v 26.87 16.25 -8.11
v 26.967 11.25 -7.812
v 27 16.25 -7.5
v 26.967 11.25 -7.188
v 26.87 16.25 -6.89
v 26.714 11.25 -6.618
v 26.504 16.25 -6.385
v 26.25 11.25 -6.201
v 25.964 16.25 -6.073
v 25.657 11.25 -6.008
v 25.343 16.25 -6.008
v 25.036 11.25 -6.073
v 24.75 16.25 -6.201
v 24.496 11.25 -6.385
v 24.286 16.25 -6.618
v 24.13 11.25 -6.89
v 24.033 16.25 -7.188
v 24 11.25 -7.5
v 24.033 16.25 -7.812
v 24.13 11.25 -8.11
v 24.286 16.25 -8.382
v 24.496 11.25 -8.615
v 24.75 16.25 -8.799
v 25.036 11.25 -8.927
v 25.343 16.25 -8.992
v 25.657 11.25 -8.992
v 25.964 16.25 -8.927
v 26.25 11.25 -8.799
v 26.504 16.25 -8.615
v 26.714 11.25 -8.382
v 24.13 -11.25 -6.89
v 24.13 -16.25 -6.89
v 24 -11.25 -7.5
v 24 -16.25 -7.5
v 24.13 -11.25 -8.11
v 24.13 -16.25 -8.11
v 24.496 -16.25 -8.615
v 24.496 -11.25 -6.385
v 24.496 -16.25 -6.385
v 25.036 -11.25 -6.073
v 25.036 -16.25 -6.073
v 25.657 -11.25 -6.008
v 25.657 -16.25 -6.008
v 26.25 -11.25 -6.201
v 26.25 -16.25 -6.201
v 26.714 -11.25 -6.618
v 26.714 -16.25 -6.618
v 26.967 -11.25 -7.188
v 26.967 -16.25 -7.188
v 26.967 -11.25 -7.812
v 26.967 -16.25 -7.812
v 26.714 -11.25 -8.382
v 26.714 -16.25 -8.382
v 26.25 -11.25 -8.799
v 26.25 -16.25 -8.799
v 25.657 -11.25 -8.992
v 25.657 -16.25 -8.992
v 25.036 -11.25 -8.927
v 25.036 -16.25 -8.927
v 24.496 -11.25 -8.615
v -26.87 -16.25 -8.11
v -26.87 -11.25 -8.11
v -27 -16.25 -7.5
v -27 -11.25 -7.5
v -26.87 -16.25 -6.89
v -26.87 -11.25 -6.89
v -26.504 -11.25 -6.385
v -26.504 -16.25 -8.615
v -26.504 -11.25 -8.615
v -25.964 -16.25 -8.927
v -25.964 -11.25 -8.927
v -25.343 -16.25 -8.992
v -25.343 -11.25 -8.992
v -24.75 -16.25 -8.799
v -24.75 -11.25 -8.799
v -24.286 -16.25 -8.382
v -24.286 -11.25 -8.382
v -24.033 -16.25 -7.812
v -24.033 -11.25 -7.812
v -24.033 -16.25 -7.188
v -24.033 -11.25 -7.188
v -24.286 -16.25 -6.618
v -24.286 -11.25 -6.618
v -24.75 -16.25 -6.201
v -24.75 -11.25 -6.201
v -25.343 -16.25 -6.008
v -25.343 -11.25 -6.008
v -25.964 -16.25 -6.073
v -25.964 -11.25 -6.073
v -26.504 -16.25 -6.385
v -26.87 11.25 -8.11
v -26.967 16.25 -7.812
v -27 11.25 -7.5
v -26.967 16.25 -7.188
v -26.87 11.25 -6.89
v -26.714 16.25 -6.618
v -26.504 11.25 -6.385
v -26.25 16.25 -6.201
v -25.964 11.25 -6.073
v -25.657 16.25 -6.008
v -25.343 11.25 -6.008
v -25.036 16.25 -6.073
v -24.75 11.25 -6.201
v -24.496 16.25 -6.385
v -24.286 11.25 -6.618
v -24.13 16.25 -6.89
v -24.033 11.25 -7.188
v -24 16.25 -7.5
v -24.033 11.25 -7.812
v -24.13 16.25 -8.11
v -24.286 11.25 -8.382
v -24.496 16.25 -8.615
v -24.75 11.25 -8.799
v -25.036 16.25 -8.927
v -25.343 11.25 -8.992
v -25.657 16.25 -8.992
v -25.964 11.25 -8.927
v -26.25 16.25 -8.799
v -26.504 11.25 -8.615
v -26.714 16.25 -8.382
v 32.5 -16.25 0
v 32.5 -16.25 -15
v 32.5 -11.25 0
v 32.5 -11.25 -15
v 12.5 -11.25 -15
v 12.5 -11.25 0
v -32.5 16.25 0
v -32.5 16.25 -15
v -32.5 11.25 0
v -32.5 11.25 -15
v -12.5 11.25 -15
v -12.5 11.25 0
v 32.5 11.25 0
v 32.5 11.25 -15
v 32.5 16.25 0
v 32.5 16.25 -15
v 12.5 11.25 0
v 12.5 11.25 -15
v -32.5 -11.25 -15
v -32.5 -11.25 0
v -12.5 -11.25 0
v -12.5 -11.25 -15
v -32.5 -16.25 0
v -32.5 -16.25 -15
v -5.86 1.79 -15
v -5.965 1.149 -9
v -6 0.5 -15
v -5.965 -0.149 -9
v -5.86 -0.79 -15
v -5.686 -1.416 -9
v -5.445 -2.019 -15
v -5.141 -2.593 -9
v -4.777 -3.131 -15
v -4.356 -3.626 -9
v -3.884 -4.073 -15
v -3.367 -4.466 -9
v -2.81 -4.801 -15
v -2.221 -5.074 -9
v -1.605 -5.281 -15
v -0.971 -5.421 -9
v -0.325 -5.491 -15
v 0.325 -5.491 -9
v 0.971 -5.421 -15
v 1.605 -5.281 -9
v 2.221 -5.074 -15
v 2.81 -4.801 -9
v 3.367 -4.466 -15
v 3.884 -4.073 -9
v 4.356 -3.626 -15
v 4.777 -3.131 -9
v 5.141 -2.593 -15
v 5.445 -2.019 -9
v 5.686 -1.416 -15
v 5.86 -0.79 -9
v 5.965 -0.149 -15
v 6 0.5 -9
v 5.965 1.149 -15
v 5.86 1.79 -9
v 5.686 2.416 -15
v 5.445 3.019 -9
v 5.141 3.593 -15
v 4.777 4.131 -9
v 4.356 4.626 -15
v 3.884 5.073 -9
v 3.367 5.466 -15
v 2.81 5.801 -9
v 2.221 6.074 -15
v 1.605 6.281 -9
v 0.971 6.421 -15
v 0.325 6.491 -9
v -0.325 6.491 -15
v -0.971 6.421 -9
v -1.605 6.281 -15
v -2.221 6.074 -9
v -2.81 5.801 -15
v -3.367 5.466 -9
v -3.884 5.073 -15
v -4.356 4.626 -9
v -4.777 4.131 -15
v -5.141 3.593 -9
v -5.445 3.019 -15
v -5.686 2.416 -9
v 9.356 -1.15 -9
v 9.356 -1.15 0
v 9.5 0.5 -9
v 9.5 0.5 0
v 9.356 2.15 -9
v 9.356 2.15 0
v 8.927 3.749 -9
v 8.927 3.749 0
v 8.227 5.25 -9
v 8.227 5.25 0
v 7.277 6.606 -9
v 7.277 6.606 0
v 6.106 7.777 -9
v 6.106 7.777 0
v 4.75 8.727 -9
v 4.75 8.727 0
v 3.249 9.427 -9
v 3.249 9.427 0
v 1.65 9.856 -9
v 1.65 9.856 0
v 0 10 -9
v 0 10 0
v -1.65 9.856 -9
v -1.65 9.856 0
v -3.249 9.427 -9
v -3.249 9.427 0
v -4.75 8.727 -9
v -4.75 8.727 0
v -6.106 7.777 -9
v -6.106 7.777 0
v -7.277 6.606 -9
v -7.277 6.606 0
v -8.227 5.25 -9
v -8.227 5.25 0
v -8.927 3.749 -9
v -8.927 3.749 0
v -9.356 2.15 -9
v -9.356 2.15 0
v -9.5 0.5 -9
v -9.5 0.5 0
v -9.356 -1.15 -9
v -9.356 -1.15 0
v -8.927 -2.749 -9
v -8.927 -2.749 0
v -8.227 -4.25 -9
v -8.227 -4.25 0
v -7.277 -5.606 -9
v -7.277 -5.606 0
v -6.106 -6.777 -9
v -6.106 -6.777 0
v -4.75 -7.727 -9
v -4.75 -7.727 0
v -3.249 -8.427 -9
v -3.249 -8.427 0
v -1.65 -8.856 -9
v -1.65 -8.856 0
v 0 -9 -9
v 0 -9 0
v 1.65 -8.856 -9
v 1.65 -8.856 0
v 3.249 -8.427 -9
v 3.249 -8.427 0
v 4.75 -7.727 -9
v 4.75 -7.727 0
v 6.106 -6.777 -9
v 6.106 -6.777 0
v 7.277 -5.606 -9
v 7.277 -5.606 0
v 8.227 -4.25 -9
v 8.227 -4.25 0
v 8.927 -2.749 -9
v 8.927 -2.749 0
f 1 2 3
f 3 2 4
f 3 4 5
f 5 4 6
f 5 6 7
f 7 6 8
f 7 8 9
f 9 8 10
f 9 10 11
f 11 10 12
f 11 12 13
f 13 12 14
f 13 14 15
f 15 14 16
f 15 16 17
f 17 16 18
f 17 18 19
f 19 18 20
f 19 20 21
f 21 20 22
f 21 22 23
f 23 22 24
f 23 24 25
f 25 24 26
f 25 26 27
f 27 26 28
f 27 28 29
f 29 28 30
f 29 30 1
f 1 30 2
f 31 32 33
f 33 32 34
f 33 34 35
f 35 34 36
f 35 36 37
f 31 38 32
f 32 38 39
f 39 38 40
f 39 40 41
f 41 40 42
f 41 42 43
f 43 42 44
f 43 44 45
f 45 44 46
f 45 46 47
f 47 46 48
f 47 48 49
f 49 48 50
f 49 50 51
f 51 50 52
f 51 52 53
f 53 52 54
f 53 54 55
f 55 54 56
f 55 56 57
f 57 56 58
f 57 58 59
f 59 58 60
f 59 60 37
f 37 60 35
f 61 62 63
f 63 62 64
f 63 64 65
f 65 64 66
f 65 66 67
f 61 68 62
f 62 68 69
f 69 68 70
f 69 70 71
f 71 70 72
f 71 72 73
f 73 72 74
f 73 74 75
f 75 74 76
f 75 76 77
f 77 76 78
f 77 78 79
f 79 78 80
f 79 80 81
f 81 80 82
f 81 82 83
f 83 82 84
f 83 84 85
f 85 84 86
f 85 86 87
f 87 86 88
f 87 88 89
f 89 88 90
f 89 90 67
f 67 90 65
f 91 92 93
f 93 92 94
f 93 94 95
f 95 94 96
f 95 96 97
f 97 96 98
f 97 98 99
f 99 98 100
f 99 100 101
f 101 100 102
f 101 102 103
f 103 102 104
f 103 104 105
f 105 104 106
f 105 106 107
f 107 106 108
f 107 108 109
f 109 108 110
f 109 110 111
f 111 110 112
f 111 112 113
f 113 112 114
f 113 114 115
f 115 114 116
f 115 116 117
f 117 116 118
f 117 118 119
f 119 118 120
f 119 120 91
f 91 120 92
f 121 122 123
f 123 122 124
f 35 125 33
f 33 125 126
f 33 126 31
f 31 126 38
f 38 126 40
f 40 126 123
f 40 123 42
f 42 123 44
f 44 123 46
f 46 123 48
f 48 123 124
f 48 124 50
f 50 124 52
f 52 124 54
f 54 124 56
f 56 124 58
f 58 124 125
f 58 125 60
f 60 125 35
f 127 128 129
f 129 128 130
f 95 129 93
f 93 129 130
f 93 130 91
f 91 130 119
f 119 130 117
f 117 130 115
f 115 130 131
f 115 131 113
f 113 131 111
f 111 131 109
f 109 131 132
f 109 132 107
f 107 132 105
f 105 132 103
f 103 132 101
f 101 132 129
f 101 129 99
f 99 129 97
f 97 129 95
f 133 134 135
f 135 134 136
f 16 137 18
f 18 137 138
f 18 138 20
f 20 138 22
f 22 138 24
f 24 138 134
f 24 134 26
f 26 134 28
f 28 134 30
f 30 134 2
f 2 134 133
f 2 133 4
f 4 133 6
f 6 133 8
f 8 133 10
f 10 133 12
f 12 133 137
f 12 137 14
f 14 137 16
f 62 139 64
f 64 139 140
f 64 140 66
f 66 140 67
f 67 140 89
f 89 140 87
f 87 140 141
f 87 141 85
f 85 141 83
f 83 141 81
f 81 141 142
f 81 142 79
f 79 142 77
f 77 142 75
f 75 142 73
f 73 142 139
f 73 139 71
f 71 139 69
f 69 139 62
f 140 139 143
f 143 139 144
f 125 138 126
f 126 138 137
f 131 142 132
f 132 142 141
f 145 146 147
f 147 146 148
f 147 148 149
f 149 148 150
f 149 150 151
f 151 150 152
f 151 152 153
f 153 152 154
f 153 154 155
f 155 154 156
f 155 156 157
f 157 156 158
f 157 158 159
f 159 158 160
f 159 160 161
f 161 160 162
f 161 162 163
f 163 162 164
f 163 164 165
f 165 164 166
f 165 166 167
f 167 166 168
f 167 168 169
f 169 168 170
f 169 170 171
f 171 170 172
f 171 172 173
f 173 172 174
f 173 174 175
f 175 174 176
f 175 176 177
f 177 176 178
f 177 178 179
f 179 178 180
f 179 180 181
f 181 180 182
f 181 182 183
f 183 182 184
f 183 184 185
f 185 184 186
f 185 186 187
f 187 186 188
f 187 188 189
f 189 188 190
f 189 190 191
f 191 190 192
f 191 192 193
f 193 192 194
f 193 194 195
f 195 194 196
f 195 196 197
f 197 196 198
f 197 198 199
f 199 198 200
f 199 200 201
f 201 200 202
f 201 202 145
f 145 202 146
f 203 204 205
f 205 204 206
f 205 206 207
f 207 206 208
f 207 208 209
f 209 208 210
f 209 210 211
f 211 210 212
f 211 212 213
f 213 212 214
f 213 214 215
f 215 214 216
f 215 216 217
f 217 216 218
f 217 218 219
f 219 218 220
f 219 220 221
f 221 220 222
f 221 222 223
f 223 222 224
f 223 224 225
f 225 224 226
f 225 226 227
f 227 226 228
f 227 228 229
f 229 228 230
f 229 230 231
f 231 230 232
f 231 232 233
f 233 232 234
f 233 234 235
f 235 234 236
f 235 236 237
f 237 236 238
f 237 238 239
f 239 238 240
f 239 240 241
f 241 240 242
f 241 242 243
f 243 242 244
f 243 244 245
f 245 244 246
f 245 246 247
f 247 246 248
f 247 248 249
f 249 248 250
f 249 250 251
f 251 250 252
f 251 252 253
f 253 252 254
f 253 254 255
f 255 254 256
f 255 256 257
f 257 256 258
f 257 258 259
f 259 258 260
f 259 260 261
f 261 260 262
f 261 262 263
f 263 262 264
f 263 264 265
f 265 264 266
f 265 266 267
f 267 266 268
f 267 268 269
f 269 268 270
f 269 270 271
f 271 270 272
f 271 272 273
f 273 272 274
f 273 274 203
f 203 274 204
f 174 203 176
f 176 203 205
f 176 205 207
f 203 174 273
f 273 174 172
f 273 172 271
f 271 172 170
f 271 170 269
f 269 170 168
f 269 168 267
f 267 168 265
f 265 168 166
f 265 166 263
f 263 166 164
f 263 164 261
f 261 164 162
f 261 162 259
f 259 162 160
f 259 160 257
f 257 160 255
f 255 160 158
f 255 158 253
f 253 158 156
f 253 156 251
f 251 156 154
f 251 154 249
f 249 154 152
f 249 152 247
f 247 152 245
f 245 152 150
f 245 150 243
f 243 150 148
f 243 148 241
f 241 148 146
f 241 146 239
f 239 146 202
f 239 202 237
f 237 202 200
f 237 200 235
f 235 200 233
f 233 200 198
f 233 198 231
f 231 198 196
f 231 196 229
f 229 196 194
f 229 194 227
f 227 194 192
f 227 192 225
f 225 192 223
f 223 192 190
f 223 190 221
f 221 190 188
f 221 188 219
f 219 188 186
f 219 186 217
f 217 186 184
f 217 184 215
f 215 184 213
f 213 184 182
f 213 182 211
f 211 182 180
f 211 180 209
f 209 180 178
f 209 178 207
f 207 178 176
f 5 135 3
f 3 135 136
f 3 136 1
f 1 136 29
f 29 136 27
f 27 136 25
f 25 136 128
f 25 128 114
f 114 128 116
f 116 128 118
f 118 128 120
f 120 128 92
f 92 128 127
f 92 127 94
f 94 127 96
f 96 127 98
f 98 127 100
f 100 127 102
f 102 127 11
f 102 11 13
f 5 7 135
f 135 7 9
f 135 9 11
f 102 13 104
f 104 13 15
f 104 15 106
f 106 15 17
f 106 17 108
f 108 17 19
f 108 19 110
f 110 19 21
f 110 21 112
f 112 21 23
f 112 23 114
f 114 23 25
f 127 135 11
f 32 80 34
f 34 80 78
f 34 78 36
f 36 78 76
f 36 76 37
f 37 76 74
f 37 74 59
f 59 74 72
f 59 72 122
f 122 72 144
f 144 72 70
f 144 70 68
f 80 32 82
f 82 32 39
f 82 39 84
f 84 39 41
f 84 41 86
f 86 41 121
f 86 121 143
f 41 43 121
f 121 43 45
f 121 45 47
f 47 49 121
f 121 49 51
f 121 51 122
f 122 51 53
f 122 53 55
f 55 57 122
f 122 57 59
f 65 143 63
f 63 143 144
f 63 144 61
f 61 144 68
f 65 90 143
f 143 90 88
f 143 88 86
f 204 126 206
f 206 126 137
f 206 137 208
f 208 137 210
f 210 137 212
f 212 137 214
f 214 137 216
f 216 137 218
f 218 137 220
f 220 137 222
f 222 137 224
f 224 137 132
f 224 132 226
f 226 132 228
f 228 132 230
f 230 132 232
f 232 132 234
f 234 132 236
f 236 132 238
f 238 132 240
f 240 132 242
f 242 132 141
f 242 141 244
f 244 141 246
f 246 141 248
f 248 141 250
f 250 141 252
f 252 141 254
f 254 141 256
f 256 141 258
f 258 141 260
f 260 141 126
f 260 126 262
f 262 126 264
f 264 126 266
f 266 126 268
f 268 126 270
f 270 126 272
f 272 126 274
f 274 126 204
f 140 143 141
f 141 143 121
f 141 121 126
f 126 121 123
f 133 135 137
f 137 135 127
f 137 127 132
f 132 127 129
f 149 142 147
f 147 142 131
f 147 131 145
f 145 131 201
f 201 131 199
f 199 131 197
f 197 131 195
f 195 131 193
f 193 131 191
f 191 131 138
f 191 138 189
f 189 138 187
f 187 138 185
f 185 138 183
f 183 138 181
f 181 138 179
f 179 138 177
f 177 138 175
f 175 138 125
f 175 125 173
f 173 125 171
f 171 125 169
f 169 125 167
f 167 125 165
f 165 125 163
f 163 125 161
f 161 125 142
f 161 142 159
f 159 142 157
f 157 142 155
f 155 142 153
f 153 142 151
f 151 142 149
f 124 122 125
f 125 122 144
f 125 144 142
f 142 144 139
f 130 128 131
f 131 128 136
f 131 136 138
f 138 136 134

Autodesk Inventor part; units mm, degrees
ref_plane "YZ Plane" through (0, 0, 0) normal (1, 0, 0) x (0, 1, 0)
ref_plane "XZ Plane" through (0, 0, 0) normal (0, 1, 0) x (-1, 0, 0)
ref_plane "XY Plane" through (0, 0, 0) normal (0, 0, 1) x (1, 0, 0)
sketch "Boceto1" plane through (0, 0, 0) normal (0, 0, 1) x (1, 0, 0)
  line L0 (-12.5, 16.25) -> (12.5, 16.25)
  line L1 (12.5, 16.25) -> (12.5, -16.25)
  line L2 (12.5, -16.25) -> (-12.5, -16.25)
  line L3 (-12.5, -16.25) -> (-12.5, 16.25)
  line L4 (-12.5, 16.25) -> (12.5, -16.25) construction
  line L5 (12.5, 16.25) -> (-12.5, -16.25) construction
  point P0 (0, 0)
  dimension "d0" = 25
  dimension "d1" = 32.5
extrude "Extrusión1" add sketch "Boceto1" against normal blind 15
sketch "Boceto4" plane through (0, 0, 0) normal (0, 0, 1) x (1, 0, 0)
  circle A0 centre (0, 0.5) radius 9.5
  line L0 (-12.5, -16.25) -> (12.5, -16.25) projected
  line L1 (0, 0) -> (0, 22.8152) construction
  dimension "d20" = 19
  dimension "d21" = 16.75
extrude "Extrusión4" cut sketch "Boceto4" against normal blind 9
sketch "Boceto5" plane through (0, 0.5, -9) normal (0, 0, 1) x (1, 0, 0)
  circle A0 centre (0, 0) radius 6
  circle A1 centre (0, 0) radius 9.5 projected
  point P0 (0, -0.5)
  point P1 (-7.5, -5.831)
  point P2 (7.5, -5.831)
  dimension "d27" = 12
extrude "Extrusión5" cut sketch "Boceto5" against normal through all contours A0
sketch "Boceto6" plane through (0, 0, -15) normal (0, 0, -1) x (-1, 0, 0)
  line L0 (-12.5, 16.25) -> (-32.5, 16.25)
  line L1 (-32.5, 16.25) -> (-32.5, 11.25)
  line L2 (-32.5, 11.25) -> (-12.5, 11.25)
  line L3 (-12.5, 11.25) -> (-12.5, 16.25)
  line L4 (4.8011, 9.4889) -> (4.8011, -13.0562) construction
  line L5 (0, 15.379) -> (0, -16.25) construction
  line L6 (-12.5, -16.25) -> (12.5, -16.25) projected
  line L7 (12.5, -16.25) -> (12.5, 16.25) construction
  line L8 (12.5, 0) -> (-12.5, 0) construction
  line L9 (-12.5, 16.25) -> (-12.5, -16.25) construction
  line L10 (-12.5, -16.25) -> (-32.5, -16.25)
  line L11 (-32.5, -16.25) -> (-32.5, -11.25)
  line L12 (-32.5, -11.25) -> (-12.5, -11.25)
  line L13 (-12.5, -11.25) -> (-12.5, -16.25)
  line L14 (12.5, 16.25) -> (32.5, 16.25)
  line L15 (32.5, 16.25) -> (32.5, 11.25)
  line L16 (32.5, 11.25) -> (12.5, 11.25)
  line L17 (12.5, 11.25) -> (12.5, 16.25)
  line L18 (12.5, 16.25) -> (12.5, -16.25) construction
  line L19 (12.5, -16.25) -> (32.5, -16.25)
  line L20 (12.5, -11.25) -> (12.5, -16.25)
  line L21 (32.5, -11.25) -> (12.5, -11.25)
  line L22 (32.5, -16.25) -> (32.5, -11.25)
  point P0 (0, 0)
  dimension "d30" = 5
  dimension "d31" = 20
extrude "Extrusión6" add sketch "Boceto6" against normal up to surface (15 mm away)
sketch "Boceto8" plane through (-32.5, 16.25, 0) normal (0, 1, 0) x (1, 0, 0)
  line L0 (0, 15) -> (0, 0) construction
  line L1 (0, 7.5) -> (65, 7.5) construction
  line L2 (65, 15) -> (65, 0) construction
  circle A0 centre (7, 7.5) radius 1.5
  circle A1 centre (58, 7.5) radius 1.5
  line L3 (65, 0) -> (0, 0) projected
  point P0 (32.5, 0)
  point P1 (32.5, 0)
  dimension "d43" = 3
  dimension "d44" = 3
  dimension "d45" = 51
  dimension "d46" = 25.5
extrude "Extrusión8" cut sketch "Boceto8" against normal through all
sketch "Boceto10" plane through (-32.5, 16.25, 0) normal (0, 1, 0) x (1, 0, 0)
  point P0 (32.5, 0)
properties part number "soporte_eje_omni_3DPrint"
